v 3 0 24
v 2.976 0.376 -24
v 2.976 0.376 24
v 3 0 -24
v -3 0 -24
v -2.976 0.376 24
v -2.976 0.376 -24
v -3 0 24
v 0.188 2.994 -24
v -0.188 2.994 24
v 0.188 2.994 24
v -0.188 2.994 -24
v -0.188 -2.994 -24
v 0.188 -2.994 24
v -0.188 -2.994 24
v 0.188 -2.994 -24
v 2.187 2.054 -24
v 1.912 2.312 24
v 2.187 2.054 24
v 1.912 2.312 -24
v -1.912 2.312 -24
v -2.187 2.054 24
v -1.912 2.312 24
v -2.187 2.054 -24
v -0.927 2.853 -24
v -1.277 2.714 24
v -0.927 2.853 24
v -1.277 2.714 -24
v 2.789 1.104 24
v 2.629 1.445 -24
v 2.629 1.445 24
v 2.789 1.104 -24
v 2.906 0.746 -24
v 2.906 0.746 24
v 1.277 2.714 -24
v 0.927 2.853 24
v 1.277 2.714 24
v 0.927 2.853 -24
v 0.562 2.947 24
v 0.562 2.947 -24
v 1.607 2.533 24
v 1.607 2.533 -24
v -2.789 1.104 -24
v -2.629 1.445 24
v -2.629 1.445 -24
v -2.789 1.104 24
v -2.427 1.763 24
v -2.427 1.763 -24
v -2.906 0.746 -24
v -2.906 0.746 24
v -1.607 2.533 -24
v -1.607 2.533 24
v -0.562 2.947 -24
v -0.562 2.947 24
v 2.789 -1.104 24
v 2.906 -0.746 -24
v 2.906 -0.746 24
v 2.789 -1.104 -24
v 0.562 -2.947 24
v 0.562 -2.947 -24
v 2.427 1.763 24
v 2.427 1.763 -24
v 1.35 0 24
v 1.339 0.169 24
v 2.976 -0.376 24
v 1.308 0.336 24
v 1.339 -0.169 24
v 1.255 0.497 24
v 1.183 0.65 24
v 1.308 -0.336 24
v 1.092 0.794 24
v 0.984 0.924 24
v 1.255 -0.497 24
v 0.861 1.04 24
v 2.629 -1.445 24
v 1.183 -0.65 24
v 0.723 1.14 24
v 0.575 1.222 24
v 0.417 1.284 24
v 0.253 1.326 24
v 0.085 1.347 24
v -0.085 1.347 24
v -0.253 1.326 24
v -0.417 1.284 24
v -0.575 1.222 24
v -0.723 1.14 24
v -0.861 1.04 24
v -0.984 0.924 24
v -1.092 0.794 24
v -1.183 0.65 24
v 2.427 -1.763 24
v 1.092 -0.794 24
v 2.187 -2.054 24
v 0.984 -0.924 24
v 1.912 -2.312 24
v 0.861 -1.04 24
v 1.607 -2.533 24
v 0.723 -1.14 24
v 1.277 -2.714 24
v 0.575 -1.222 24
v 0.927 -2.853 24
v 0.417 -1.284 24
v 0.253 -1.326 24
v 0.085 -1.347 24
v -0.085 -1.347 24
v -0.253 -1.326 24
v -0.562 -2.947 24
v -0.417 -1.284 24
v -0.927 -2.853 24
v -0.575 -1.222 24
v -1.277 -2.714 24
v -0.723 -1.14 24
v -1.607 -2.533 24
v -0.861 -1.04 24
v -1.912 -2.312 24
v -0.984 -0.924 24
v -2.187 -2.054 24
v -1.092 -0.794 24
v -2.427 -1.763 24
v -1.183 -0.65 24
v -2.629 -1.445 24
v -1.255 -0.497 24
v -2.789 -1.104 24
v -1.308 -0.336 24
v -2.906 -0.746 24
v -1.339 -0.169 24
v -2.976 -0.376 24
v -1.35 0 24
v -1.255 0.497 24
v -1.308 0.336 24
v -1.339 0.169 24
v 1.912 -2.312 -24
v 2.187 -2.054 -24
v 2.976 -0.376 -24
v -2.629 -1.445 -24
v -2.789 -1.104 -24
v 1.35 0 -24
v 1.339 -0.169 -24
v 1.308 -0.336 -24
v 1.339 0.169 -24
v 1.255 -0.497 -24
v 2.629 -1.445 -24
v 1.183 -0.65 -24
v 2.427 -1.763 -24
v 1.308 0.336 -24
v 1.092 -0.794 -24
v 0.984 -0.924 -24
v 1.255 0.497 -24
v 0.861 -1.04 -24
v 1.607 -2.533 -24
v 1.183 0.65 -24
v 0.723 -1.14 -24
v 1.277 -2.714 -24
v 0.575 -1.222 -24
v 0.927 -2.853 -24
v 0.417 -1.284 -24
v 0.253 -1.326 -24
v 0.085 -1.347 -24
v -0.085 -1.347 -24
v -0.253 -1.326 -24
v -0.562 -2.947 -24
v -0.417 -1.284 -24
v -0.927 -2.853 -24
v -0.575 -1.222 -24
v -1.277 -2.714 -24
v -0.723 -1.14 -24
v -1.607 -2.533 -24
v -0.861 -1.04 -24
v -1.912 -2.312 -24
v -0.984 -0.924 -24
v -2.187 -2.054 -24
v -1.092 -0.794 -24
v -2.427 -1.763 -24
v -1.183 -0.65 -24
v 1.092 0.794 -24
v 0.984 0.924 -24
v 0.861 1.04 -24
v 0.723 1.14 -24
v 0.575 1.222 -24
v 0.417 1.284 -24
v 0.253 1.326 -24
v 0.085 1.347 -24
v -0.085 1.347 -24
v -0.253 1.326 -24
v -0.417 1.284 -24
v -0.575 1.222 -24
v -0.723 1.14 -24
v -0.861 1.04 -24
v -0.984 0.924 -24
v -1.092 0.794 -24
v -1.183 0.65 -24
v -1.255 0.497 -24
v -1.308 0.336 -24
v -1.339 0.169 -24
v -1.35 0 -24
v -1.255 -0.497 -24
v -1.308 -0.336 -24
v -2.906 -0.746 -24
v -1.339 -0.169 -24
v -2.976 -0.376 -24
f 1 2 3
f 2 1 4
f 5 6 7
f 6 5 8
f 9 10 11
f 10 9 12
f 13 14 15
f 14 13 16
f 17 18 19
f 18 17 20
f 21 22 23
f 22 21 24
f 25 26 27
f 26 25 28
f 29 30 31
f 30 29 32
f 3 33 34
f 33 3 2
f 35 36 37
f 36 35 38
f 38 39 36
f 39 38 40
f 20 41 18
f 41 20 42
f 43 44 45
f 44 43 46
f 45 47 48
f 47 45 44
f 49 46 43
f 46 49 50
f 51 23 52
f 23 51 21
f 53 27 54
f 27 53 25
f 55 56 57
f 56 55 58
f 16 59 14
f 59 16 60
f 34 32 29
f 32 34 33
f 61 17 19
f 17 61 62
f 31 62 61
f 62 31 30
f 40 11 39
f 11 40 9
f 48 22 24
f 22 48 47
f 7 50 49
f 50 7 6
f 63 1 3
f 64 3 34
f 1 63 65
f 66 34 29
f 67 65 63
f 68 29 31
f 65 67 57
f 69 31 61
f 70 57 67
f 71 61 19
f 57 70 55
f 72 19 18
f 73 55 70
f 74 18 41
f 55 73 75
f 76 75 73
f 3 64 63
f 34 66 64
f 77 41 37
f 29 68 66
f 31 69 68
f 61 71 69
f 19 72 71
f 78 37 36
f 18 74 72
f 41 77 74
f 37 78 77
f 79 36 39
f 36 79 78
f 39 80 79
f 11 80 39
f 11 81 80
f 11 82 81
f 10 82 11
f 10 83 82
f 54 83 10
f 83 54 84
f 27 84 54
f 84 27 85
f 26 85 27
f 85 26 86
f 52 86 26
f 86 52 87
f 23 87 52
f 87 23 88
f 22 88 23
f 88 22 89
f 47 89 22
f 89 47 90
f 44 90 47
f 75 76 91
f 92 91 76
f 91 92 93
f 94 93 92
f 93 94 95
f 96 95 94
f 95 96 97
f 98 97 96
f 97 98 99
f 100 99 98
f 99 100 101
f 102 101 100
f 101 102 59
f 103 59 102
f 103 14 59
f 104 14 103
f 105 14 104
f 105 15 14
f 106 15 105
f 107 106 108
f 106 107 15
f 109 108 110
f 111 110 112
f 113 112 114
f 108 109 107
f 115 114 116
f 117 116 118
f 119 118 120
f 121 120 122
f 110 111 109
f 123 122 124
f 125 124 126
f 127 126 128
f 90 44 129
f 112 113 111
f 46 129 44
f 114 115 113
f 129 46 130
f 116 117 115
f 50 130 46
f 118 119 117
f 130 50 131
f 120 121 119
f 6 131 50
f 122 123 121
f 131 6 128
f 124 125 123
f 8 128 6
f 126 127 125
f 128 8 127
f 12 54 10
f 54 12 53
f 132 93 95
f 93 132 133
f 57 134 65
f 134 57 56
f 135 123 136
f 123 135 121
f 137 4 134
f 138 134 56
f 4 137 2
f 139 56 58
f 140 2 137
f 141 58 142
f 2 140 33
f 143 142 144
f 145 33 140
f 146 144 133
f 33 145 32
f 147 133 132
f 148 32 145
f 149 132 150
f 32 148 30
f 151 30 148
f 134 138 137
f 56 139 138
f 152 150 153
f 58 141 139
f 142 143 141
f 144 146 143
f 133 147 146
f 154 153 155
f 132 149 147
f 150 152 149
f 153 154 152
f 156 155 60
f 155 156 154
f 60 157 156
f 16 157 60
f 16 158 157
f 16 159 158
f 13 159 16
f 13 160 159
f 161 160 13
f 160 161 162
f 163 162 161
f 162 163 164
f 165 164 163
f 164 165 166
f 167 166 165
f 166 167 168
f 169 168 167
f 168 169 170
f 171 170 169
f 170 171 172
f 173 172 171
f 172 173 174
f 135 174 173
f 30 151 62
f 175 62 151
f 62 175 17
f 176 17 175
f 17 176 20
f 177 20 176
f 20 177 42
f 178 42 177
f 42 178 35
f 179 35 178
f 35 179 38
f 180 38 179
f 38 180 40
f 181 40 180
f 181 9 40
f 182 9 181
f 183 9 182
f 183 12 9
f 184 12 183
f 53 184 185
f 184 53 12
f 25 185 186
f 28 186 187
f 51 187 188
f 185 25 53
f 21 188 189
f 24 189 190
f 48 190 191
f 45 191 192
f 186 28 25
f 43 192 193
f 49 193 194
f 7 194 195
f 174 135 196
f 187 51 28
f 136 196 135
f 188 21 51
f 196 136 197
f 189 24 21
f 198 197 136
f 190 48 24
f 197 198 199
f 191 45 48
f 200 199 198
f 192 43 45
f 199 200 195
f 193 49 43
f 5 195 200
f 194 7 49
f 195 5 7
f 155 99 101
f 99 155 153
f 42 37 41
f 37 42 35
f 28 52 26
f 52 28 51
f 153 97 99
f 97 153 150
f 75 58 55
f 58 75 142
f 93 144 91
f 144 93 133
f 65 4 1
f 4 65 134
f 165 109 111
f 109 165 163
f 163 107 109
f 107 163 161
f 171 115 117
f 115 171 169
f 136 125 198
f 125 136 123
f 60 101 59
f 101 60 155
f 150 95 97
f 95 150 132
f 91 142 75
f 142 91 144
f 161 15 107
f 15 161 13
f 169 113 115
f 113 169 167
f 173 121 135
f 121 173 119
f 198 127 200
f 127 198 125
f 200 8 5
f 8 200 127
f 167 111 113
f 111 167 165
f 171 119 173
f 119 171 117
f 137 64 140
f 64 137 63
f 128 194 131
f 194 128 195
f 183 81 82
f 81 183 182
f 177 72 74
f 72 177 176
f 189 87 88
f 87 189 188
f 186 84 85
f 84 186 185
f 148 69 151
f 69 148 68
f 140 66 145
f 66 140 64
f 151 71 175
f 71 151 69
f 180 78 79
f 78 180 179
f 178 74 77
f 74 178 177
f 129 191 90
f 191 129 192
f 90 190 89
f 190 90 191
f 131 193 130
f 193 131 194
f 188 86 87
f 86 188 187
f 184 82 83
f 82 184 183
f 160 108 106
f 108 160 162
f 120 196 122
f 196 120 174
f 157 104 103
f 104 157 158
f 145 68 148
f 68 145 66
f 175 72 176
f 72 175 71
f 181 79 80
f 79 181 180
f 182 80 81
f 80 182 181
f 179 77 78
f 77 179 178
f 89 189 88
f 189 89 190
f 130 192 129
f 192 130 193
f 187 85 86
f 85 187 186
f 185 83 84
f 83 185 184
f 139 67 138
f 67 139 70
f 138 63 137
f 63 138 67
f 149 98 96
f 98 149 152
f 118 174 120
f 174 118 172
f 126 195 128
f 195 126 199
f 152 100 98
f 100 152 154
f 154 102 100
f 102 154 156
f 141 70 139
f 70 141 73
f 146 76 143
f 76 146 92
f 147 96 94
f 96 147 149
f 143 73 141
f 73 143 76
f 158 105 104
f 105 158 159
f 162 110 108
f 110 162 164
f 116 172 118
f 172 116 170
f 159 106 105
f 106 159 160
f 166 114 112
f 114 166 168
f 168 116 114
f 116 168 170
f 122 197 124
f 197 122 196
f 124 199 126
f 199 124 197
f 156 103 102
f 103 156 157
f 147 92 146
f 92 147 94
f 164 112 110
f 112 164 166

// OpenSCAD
$fn = 50;


difference() {
	union() {
		translate(v = [0, 0, -24.0000000000]) {
			cylinder(h = 48, r = 3.0000000000);
		}
	}
	union() {
		translate(v = [0, 0, -100.0000000000]) {
			cylinder(h = 200, r = 1.3500000000);
		}
	}
}
